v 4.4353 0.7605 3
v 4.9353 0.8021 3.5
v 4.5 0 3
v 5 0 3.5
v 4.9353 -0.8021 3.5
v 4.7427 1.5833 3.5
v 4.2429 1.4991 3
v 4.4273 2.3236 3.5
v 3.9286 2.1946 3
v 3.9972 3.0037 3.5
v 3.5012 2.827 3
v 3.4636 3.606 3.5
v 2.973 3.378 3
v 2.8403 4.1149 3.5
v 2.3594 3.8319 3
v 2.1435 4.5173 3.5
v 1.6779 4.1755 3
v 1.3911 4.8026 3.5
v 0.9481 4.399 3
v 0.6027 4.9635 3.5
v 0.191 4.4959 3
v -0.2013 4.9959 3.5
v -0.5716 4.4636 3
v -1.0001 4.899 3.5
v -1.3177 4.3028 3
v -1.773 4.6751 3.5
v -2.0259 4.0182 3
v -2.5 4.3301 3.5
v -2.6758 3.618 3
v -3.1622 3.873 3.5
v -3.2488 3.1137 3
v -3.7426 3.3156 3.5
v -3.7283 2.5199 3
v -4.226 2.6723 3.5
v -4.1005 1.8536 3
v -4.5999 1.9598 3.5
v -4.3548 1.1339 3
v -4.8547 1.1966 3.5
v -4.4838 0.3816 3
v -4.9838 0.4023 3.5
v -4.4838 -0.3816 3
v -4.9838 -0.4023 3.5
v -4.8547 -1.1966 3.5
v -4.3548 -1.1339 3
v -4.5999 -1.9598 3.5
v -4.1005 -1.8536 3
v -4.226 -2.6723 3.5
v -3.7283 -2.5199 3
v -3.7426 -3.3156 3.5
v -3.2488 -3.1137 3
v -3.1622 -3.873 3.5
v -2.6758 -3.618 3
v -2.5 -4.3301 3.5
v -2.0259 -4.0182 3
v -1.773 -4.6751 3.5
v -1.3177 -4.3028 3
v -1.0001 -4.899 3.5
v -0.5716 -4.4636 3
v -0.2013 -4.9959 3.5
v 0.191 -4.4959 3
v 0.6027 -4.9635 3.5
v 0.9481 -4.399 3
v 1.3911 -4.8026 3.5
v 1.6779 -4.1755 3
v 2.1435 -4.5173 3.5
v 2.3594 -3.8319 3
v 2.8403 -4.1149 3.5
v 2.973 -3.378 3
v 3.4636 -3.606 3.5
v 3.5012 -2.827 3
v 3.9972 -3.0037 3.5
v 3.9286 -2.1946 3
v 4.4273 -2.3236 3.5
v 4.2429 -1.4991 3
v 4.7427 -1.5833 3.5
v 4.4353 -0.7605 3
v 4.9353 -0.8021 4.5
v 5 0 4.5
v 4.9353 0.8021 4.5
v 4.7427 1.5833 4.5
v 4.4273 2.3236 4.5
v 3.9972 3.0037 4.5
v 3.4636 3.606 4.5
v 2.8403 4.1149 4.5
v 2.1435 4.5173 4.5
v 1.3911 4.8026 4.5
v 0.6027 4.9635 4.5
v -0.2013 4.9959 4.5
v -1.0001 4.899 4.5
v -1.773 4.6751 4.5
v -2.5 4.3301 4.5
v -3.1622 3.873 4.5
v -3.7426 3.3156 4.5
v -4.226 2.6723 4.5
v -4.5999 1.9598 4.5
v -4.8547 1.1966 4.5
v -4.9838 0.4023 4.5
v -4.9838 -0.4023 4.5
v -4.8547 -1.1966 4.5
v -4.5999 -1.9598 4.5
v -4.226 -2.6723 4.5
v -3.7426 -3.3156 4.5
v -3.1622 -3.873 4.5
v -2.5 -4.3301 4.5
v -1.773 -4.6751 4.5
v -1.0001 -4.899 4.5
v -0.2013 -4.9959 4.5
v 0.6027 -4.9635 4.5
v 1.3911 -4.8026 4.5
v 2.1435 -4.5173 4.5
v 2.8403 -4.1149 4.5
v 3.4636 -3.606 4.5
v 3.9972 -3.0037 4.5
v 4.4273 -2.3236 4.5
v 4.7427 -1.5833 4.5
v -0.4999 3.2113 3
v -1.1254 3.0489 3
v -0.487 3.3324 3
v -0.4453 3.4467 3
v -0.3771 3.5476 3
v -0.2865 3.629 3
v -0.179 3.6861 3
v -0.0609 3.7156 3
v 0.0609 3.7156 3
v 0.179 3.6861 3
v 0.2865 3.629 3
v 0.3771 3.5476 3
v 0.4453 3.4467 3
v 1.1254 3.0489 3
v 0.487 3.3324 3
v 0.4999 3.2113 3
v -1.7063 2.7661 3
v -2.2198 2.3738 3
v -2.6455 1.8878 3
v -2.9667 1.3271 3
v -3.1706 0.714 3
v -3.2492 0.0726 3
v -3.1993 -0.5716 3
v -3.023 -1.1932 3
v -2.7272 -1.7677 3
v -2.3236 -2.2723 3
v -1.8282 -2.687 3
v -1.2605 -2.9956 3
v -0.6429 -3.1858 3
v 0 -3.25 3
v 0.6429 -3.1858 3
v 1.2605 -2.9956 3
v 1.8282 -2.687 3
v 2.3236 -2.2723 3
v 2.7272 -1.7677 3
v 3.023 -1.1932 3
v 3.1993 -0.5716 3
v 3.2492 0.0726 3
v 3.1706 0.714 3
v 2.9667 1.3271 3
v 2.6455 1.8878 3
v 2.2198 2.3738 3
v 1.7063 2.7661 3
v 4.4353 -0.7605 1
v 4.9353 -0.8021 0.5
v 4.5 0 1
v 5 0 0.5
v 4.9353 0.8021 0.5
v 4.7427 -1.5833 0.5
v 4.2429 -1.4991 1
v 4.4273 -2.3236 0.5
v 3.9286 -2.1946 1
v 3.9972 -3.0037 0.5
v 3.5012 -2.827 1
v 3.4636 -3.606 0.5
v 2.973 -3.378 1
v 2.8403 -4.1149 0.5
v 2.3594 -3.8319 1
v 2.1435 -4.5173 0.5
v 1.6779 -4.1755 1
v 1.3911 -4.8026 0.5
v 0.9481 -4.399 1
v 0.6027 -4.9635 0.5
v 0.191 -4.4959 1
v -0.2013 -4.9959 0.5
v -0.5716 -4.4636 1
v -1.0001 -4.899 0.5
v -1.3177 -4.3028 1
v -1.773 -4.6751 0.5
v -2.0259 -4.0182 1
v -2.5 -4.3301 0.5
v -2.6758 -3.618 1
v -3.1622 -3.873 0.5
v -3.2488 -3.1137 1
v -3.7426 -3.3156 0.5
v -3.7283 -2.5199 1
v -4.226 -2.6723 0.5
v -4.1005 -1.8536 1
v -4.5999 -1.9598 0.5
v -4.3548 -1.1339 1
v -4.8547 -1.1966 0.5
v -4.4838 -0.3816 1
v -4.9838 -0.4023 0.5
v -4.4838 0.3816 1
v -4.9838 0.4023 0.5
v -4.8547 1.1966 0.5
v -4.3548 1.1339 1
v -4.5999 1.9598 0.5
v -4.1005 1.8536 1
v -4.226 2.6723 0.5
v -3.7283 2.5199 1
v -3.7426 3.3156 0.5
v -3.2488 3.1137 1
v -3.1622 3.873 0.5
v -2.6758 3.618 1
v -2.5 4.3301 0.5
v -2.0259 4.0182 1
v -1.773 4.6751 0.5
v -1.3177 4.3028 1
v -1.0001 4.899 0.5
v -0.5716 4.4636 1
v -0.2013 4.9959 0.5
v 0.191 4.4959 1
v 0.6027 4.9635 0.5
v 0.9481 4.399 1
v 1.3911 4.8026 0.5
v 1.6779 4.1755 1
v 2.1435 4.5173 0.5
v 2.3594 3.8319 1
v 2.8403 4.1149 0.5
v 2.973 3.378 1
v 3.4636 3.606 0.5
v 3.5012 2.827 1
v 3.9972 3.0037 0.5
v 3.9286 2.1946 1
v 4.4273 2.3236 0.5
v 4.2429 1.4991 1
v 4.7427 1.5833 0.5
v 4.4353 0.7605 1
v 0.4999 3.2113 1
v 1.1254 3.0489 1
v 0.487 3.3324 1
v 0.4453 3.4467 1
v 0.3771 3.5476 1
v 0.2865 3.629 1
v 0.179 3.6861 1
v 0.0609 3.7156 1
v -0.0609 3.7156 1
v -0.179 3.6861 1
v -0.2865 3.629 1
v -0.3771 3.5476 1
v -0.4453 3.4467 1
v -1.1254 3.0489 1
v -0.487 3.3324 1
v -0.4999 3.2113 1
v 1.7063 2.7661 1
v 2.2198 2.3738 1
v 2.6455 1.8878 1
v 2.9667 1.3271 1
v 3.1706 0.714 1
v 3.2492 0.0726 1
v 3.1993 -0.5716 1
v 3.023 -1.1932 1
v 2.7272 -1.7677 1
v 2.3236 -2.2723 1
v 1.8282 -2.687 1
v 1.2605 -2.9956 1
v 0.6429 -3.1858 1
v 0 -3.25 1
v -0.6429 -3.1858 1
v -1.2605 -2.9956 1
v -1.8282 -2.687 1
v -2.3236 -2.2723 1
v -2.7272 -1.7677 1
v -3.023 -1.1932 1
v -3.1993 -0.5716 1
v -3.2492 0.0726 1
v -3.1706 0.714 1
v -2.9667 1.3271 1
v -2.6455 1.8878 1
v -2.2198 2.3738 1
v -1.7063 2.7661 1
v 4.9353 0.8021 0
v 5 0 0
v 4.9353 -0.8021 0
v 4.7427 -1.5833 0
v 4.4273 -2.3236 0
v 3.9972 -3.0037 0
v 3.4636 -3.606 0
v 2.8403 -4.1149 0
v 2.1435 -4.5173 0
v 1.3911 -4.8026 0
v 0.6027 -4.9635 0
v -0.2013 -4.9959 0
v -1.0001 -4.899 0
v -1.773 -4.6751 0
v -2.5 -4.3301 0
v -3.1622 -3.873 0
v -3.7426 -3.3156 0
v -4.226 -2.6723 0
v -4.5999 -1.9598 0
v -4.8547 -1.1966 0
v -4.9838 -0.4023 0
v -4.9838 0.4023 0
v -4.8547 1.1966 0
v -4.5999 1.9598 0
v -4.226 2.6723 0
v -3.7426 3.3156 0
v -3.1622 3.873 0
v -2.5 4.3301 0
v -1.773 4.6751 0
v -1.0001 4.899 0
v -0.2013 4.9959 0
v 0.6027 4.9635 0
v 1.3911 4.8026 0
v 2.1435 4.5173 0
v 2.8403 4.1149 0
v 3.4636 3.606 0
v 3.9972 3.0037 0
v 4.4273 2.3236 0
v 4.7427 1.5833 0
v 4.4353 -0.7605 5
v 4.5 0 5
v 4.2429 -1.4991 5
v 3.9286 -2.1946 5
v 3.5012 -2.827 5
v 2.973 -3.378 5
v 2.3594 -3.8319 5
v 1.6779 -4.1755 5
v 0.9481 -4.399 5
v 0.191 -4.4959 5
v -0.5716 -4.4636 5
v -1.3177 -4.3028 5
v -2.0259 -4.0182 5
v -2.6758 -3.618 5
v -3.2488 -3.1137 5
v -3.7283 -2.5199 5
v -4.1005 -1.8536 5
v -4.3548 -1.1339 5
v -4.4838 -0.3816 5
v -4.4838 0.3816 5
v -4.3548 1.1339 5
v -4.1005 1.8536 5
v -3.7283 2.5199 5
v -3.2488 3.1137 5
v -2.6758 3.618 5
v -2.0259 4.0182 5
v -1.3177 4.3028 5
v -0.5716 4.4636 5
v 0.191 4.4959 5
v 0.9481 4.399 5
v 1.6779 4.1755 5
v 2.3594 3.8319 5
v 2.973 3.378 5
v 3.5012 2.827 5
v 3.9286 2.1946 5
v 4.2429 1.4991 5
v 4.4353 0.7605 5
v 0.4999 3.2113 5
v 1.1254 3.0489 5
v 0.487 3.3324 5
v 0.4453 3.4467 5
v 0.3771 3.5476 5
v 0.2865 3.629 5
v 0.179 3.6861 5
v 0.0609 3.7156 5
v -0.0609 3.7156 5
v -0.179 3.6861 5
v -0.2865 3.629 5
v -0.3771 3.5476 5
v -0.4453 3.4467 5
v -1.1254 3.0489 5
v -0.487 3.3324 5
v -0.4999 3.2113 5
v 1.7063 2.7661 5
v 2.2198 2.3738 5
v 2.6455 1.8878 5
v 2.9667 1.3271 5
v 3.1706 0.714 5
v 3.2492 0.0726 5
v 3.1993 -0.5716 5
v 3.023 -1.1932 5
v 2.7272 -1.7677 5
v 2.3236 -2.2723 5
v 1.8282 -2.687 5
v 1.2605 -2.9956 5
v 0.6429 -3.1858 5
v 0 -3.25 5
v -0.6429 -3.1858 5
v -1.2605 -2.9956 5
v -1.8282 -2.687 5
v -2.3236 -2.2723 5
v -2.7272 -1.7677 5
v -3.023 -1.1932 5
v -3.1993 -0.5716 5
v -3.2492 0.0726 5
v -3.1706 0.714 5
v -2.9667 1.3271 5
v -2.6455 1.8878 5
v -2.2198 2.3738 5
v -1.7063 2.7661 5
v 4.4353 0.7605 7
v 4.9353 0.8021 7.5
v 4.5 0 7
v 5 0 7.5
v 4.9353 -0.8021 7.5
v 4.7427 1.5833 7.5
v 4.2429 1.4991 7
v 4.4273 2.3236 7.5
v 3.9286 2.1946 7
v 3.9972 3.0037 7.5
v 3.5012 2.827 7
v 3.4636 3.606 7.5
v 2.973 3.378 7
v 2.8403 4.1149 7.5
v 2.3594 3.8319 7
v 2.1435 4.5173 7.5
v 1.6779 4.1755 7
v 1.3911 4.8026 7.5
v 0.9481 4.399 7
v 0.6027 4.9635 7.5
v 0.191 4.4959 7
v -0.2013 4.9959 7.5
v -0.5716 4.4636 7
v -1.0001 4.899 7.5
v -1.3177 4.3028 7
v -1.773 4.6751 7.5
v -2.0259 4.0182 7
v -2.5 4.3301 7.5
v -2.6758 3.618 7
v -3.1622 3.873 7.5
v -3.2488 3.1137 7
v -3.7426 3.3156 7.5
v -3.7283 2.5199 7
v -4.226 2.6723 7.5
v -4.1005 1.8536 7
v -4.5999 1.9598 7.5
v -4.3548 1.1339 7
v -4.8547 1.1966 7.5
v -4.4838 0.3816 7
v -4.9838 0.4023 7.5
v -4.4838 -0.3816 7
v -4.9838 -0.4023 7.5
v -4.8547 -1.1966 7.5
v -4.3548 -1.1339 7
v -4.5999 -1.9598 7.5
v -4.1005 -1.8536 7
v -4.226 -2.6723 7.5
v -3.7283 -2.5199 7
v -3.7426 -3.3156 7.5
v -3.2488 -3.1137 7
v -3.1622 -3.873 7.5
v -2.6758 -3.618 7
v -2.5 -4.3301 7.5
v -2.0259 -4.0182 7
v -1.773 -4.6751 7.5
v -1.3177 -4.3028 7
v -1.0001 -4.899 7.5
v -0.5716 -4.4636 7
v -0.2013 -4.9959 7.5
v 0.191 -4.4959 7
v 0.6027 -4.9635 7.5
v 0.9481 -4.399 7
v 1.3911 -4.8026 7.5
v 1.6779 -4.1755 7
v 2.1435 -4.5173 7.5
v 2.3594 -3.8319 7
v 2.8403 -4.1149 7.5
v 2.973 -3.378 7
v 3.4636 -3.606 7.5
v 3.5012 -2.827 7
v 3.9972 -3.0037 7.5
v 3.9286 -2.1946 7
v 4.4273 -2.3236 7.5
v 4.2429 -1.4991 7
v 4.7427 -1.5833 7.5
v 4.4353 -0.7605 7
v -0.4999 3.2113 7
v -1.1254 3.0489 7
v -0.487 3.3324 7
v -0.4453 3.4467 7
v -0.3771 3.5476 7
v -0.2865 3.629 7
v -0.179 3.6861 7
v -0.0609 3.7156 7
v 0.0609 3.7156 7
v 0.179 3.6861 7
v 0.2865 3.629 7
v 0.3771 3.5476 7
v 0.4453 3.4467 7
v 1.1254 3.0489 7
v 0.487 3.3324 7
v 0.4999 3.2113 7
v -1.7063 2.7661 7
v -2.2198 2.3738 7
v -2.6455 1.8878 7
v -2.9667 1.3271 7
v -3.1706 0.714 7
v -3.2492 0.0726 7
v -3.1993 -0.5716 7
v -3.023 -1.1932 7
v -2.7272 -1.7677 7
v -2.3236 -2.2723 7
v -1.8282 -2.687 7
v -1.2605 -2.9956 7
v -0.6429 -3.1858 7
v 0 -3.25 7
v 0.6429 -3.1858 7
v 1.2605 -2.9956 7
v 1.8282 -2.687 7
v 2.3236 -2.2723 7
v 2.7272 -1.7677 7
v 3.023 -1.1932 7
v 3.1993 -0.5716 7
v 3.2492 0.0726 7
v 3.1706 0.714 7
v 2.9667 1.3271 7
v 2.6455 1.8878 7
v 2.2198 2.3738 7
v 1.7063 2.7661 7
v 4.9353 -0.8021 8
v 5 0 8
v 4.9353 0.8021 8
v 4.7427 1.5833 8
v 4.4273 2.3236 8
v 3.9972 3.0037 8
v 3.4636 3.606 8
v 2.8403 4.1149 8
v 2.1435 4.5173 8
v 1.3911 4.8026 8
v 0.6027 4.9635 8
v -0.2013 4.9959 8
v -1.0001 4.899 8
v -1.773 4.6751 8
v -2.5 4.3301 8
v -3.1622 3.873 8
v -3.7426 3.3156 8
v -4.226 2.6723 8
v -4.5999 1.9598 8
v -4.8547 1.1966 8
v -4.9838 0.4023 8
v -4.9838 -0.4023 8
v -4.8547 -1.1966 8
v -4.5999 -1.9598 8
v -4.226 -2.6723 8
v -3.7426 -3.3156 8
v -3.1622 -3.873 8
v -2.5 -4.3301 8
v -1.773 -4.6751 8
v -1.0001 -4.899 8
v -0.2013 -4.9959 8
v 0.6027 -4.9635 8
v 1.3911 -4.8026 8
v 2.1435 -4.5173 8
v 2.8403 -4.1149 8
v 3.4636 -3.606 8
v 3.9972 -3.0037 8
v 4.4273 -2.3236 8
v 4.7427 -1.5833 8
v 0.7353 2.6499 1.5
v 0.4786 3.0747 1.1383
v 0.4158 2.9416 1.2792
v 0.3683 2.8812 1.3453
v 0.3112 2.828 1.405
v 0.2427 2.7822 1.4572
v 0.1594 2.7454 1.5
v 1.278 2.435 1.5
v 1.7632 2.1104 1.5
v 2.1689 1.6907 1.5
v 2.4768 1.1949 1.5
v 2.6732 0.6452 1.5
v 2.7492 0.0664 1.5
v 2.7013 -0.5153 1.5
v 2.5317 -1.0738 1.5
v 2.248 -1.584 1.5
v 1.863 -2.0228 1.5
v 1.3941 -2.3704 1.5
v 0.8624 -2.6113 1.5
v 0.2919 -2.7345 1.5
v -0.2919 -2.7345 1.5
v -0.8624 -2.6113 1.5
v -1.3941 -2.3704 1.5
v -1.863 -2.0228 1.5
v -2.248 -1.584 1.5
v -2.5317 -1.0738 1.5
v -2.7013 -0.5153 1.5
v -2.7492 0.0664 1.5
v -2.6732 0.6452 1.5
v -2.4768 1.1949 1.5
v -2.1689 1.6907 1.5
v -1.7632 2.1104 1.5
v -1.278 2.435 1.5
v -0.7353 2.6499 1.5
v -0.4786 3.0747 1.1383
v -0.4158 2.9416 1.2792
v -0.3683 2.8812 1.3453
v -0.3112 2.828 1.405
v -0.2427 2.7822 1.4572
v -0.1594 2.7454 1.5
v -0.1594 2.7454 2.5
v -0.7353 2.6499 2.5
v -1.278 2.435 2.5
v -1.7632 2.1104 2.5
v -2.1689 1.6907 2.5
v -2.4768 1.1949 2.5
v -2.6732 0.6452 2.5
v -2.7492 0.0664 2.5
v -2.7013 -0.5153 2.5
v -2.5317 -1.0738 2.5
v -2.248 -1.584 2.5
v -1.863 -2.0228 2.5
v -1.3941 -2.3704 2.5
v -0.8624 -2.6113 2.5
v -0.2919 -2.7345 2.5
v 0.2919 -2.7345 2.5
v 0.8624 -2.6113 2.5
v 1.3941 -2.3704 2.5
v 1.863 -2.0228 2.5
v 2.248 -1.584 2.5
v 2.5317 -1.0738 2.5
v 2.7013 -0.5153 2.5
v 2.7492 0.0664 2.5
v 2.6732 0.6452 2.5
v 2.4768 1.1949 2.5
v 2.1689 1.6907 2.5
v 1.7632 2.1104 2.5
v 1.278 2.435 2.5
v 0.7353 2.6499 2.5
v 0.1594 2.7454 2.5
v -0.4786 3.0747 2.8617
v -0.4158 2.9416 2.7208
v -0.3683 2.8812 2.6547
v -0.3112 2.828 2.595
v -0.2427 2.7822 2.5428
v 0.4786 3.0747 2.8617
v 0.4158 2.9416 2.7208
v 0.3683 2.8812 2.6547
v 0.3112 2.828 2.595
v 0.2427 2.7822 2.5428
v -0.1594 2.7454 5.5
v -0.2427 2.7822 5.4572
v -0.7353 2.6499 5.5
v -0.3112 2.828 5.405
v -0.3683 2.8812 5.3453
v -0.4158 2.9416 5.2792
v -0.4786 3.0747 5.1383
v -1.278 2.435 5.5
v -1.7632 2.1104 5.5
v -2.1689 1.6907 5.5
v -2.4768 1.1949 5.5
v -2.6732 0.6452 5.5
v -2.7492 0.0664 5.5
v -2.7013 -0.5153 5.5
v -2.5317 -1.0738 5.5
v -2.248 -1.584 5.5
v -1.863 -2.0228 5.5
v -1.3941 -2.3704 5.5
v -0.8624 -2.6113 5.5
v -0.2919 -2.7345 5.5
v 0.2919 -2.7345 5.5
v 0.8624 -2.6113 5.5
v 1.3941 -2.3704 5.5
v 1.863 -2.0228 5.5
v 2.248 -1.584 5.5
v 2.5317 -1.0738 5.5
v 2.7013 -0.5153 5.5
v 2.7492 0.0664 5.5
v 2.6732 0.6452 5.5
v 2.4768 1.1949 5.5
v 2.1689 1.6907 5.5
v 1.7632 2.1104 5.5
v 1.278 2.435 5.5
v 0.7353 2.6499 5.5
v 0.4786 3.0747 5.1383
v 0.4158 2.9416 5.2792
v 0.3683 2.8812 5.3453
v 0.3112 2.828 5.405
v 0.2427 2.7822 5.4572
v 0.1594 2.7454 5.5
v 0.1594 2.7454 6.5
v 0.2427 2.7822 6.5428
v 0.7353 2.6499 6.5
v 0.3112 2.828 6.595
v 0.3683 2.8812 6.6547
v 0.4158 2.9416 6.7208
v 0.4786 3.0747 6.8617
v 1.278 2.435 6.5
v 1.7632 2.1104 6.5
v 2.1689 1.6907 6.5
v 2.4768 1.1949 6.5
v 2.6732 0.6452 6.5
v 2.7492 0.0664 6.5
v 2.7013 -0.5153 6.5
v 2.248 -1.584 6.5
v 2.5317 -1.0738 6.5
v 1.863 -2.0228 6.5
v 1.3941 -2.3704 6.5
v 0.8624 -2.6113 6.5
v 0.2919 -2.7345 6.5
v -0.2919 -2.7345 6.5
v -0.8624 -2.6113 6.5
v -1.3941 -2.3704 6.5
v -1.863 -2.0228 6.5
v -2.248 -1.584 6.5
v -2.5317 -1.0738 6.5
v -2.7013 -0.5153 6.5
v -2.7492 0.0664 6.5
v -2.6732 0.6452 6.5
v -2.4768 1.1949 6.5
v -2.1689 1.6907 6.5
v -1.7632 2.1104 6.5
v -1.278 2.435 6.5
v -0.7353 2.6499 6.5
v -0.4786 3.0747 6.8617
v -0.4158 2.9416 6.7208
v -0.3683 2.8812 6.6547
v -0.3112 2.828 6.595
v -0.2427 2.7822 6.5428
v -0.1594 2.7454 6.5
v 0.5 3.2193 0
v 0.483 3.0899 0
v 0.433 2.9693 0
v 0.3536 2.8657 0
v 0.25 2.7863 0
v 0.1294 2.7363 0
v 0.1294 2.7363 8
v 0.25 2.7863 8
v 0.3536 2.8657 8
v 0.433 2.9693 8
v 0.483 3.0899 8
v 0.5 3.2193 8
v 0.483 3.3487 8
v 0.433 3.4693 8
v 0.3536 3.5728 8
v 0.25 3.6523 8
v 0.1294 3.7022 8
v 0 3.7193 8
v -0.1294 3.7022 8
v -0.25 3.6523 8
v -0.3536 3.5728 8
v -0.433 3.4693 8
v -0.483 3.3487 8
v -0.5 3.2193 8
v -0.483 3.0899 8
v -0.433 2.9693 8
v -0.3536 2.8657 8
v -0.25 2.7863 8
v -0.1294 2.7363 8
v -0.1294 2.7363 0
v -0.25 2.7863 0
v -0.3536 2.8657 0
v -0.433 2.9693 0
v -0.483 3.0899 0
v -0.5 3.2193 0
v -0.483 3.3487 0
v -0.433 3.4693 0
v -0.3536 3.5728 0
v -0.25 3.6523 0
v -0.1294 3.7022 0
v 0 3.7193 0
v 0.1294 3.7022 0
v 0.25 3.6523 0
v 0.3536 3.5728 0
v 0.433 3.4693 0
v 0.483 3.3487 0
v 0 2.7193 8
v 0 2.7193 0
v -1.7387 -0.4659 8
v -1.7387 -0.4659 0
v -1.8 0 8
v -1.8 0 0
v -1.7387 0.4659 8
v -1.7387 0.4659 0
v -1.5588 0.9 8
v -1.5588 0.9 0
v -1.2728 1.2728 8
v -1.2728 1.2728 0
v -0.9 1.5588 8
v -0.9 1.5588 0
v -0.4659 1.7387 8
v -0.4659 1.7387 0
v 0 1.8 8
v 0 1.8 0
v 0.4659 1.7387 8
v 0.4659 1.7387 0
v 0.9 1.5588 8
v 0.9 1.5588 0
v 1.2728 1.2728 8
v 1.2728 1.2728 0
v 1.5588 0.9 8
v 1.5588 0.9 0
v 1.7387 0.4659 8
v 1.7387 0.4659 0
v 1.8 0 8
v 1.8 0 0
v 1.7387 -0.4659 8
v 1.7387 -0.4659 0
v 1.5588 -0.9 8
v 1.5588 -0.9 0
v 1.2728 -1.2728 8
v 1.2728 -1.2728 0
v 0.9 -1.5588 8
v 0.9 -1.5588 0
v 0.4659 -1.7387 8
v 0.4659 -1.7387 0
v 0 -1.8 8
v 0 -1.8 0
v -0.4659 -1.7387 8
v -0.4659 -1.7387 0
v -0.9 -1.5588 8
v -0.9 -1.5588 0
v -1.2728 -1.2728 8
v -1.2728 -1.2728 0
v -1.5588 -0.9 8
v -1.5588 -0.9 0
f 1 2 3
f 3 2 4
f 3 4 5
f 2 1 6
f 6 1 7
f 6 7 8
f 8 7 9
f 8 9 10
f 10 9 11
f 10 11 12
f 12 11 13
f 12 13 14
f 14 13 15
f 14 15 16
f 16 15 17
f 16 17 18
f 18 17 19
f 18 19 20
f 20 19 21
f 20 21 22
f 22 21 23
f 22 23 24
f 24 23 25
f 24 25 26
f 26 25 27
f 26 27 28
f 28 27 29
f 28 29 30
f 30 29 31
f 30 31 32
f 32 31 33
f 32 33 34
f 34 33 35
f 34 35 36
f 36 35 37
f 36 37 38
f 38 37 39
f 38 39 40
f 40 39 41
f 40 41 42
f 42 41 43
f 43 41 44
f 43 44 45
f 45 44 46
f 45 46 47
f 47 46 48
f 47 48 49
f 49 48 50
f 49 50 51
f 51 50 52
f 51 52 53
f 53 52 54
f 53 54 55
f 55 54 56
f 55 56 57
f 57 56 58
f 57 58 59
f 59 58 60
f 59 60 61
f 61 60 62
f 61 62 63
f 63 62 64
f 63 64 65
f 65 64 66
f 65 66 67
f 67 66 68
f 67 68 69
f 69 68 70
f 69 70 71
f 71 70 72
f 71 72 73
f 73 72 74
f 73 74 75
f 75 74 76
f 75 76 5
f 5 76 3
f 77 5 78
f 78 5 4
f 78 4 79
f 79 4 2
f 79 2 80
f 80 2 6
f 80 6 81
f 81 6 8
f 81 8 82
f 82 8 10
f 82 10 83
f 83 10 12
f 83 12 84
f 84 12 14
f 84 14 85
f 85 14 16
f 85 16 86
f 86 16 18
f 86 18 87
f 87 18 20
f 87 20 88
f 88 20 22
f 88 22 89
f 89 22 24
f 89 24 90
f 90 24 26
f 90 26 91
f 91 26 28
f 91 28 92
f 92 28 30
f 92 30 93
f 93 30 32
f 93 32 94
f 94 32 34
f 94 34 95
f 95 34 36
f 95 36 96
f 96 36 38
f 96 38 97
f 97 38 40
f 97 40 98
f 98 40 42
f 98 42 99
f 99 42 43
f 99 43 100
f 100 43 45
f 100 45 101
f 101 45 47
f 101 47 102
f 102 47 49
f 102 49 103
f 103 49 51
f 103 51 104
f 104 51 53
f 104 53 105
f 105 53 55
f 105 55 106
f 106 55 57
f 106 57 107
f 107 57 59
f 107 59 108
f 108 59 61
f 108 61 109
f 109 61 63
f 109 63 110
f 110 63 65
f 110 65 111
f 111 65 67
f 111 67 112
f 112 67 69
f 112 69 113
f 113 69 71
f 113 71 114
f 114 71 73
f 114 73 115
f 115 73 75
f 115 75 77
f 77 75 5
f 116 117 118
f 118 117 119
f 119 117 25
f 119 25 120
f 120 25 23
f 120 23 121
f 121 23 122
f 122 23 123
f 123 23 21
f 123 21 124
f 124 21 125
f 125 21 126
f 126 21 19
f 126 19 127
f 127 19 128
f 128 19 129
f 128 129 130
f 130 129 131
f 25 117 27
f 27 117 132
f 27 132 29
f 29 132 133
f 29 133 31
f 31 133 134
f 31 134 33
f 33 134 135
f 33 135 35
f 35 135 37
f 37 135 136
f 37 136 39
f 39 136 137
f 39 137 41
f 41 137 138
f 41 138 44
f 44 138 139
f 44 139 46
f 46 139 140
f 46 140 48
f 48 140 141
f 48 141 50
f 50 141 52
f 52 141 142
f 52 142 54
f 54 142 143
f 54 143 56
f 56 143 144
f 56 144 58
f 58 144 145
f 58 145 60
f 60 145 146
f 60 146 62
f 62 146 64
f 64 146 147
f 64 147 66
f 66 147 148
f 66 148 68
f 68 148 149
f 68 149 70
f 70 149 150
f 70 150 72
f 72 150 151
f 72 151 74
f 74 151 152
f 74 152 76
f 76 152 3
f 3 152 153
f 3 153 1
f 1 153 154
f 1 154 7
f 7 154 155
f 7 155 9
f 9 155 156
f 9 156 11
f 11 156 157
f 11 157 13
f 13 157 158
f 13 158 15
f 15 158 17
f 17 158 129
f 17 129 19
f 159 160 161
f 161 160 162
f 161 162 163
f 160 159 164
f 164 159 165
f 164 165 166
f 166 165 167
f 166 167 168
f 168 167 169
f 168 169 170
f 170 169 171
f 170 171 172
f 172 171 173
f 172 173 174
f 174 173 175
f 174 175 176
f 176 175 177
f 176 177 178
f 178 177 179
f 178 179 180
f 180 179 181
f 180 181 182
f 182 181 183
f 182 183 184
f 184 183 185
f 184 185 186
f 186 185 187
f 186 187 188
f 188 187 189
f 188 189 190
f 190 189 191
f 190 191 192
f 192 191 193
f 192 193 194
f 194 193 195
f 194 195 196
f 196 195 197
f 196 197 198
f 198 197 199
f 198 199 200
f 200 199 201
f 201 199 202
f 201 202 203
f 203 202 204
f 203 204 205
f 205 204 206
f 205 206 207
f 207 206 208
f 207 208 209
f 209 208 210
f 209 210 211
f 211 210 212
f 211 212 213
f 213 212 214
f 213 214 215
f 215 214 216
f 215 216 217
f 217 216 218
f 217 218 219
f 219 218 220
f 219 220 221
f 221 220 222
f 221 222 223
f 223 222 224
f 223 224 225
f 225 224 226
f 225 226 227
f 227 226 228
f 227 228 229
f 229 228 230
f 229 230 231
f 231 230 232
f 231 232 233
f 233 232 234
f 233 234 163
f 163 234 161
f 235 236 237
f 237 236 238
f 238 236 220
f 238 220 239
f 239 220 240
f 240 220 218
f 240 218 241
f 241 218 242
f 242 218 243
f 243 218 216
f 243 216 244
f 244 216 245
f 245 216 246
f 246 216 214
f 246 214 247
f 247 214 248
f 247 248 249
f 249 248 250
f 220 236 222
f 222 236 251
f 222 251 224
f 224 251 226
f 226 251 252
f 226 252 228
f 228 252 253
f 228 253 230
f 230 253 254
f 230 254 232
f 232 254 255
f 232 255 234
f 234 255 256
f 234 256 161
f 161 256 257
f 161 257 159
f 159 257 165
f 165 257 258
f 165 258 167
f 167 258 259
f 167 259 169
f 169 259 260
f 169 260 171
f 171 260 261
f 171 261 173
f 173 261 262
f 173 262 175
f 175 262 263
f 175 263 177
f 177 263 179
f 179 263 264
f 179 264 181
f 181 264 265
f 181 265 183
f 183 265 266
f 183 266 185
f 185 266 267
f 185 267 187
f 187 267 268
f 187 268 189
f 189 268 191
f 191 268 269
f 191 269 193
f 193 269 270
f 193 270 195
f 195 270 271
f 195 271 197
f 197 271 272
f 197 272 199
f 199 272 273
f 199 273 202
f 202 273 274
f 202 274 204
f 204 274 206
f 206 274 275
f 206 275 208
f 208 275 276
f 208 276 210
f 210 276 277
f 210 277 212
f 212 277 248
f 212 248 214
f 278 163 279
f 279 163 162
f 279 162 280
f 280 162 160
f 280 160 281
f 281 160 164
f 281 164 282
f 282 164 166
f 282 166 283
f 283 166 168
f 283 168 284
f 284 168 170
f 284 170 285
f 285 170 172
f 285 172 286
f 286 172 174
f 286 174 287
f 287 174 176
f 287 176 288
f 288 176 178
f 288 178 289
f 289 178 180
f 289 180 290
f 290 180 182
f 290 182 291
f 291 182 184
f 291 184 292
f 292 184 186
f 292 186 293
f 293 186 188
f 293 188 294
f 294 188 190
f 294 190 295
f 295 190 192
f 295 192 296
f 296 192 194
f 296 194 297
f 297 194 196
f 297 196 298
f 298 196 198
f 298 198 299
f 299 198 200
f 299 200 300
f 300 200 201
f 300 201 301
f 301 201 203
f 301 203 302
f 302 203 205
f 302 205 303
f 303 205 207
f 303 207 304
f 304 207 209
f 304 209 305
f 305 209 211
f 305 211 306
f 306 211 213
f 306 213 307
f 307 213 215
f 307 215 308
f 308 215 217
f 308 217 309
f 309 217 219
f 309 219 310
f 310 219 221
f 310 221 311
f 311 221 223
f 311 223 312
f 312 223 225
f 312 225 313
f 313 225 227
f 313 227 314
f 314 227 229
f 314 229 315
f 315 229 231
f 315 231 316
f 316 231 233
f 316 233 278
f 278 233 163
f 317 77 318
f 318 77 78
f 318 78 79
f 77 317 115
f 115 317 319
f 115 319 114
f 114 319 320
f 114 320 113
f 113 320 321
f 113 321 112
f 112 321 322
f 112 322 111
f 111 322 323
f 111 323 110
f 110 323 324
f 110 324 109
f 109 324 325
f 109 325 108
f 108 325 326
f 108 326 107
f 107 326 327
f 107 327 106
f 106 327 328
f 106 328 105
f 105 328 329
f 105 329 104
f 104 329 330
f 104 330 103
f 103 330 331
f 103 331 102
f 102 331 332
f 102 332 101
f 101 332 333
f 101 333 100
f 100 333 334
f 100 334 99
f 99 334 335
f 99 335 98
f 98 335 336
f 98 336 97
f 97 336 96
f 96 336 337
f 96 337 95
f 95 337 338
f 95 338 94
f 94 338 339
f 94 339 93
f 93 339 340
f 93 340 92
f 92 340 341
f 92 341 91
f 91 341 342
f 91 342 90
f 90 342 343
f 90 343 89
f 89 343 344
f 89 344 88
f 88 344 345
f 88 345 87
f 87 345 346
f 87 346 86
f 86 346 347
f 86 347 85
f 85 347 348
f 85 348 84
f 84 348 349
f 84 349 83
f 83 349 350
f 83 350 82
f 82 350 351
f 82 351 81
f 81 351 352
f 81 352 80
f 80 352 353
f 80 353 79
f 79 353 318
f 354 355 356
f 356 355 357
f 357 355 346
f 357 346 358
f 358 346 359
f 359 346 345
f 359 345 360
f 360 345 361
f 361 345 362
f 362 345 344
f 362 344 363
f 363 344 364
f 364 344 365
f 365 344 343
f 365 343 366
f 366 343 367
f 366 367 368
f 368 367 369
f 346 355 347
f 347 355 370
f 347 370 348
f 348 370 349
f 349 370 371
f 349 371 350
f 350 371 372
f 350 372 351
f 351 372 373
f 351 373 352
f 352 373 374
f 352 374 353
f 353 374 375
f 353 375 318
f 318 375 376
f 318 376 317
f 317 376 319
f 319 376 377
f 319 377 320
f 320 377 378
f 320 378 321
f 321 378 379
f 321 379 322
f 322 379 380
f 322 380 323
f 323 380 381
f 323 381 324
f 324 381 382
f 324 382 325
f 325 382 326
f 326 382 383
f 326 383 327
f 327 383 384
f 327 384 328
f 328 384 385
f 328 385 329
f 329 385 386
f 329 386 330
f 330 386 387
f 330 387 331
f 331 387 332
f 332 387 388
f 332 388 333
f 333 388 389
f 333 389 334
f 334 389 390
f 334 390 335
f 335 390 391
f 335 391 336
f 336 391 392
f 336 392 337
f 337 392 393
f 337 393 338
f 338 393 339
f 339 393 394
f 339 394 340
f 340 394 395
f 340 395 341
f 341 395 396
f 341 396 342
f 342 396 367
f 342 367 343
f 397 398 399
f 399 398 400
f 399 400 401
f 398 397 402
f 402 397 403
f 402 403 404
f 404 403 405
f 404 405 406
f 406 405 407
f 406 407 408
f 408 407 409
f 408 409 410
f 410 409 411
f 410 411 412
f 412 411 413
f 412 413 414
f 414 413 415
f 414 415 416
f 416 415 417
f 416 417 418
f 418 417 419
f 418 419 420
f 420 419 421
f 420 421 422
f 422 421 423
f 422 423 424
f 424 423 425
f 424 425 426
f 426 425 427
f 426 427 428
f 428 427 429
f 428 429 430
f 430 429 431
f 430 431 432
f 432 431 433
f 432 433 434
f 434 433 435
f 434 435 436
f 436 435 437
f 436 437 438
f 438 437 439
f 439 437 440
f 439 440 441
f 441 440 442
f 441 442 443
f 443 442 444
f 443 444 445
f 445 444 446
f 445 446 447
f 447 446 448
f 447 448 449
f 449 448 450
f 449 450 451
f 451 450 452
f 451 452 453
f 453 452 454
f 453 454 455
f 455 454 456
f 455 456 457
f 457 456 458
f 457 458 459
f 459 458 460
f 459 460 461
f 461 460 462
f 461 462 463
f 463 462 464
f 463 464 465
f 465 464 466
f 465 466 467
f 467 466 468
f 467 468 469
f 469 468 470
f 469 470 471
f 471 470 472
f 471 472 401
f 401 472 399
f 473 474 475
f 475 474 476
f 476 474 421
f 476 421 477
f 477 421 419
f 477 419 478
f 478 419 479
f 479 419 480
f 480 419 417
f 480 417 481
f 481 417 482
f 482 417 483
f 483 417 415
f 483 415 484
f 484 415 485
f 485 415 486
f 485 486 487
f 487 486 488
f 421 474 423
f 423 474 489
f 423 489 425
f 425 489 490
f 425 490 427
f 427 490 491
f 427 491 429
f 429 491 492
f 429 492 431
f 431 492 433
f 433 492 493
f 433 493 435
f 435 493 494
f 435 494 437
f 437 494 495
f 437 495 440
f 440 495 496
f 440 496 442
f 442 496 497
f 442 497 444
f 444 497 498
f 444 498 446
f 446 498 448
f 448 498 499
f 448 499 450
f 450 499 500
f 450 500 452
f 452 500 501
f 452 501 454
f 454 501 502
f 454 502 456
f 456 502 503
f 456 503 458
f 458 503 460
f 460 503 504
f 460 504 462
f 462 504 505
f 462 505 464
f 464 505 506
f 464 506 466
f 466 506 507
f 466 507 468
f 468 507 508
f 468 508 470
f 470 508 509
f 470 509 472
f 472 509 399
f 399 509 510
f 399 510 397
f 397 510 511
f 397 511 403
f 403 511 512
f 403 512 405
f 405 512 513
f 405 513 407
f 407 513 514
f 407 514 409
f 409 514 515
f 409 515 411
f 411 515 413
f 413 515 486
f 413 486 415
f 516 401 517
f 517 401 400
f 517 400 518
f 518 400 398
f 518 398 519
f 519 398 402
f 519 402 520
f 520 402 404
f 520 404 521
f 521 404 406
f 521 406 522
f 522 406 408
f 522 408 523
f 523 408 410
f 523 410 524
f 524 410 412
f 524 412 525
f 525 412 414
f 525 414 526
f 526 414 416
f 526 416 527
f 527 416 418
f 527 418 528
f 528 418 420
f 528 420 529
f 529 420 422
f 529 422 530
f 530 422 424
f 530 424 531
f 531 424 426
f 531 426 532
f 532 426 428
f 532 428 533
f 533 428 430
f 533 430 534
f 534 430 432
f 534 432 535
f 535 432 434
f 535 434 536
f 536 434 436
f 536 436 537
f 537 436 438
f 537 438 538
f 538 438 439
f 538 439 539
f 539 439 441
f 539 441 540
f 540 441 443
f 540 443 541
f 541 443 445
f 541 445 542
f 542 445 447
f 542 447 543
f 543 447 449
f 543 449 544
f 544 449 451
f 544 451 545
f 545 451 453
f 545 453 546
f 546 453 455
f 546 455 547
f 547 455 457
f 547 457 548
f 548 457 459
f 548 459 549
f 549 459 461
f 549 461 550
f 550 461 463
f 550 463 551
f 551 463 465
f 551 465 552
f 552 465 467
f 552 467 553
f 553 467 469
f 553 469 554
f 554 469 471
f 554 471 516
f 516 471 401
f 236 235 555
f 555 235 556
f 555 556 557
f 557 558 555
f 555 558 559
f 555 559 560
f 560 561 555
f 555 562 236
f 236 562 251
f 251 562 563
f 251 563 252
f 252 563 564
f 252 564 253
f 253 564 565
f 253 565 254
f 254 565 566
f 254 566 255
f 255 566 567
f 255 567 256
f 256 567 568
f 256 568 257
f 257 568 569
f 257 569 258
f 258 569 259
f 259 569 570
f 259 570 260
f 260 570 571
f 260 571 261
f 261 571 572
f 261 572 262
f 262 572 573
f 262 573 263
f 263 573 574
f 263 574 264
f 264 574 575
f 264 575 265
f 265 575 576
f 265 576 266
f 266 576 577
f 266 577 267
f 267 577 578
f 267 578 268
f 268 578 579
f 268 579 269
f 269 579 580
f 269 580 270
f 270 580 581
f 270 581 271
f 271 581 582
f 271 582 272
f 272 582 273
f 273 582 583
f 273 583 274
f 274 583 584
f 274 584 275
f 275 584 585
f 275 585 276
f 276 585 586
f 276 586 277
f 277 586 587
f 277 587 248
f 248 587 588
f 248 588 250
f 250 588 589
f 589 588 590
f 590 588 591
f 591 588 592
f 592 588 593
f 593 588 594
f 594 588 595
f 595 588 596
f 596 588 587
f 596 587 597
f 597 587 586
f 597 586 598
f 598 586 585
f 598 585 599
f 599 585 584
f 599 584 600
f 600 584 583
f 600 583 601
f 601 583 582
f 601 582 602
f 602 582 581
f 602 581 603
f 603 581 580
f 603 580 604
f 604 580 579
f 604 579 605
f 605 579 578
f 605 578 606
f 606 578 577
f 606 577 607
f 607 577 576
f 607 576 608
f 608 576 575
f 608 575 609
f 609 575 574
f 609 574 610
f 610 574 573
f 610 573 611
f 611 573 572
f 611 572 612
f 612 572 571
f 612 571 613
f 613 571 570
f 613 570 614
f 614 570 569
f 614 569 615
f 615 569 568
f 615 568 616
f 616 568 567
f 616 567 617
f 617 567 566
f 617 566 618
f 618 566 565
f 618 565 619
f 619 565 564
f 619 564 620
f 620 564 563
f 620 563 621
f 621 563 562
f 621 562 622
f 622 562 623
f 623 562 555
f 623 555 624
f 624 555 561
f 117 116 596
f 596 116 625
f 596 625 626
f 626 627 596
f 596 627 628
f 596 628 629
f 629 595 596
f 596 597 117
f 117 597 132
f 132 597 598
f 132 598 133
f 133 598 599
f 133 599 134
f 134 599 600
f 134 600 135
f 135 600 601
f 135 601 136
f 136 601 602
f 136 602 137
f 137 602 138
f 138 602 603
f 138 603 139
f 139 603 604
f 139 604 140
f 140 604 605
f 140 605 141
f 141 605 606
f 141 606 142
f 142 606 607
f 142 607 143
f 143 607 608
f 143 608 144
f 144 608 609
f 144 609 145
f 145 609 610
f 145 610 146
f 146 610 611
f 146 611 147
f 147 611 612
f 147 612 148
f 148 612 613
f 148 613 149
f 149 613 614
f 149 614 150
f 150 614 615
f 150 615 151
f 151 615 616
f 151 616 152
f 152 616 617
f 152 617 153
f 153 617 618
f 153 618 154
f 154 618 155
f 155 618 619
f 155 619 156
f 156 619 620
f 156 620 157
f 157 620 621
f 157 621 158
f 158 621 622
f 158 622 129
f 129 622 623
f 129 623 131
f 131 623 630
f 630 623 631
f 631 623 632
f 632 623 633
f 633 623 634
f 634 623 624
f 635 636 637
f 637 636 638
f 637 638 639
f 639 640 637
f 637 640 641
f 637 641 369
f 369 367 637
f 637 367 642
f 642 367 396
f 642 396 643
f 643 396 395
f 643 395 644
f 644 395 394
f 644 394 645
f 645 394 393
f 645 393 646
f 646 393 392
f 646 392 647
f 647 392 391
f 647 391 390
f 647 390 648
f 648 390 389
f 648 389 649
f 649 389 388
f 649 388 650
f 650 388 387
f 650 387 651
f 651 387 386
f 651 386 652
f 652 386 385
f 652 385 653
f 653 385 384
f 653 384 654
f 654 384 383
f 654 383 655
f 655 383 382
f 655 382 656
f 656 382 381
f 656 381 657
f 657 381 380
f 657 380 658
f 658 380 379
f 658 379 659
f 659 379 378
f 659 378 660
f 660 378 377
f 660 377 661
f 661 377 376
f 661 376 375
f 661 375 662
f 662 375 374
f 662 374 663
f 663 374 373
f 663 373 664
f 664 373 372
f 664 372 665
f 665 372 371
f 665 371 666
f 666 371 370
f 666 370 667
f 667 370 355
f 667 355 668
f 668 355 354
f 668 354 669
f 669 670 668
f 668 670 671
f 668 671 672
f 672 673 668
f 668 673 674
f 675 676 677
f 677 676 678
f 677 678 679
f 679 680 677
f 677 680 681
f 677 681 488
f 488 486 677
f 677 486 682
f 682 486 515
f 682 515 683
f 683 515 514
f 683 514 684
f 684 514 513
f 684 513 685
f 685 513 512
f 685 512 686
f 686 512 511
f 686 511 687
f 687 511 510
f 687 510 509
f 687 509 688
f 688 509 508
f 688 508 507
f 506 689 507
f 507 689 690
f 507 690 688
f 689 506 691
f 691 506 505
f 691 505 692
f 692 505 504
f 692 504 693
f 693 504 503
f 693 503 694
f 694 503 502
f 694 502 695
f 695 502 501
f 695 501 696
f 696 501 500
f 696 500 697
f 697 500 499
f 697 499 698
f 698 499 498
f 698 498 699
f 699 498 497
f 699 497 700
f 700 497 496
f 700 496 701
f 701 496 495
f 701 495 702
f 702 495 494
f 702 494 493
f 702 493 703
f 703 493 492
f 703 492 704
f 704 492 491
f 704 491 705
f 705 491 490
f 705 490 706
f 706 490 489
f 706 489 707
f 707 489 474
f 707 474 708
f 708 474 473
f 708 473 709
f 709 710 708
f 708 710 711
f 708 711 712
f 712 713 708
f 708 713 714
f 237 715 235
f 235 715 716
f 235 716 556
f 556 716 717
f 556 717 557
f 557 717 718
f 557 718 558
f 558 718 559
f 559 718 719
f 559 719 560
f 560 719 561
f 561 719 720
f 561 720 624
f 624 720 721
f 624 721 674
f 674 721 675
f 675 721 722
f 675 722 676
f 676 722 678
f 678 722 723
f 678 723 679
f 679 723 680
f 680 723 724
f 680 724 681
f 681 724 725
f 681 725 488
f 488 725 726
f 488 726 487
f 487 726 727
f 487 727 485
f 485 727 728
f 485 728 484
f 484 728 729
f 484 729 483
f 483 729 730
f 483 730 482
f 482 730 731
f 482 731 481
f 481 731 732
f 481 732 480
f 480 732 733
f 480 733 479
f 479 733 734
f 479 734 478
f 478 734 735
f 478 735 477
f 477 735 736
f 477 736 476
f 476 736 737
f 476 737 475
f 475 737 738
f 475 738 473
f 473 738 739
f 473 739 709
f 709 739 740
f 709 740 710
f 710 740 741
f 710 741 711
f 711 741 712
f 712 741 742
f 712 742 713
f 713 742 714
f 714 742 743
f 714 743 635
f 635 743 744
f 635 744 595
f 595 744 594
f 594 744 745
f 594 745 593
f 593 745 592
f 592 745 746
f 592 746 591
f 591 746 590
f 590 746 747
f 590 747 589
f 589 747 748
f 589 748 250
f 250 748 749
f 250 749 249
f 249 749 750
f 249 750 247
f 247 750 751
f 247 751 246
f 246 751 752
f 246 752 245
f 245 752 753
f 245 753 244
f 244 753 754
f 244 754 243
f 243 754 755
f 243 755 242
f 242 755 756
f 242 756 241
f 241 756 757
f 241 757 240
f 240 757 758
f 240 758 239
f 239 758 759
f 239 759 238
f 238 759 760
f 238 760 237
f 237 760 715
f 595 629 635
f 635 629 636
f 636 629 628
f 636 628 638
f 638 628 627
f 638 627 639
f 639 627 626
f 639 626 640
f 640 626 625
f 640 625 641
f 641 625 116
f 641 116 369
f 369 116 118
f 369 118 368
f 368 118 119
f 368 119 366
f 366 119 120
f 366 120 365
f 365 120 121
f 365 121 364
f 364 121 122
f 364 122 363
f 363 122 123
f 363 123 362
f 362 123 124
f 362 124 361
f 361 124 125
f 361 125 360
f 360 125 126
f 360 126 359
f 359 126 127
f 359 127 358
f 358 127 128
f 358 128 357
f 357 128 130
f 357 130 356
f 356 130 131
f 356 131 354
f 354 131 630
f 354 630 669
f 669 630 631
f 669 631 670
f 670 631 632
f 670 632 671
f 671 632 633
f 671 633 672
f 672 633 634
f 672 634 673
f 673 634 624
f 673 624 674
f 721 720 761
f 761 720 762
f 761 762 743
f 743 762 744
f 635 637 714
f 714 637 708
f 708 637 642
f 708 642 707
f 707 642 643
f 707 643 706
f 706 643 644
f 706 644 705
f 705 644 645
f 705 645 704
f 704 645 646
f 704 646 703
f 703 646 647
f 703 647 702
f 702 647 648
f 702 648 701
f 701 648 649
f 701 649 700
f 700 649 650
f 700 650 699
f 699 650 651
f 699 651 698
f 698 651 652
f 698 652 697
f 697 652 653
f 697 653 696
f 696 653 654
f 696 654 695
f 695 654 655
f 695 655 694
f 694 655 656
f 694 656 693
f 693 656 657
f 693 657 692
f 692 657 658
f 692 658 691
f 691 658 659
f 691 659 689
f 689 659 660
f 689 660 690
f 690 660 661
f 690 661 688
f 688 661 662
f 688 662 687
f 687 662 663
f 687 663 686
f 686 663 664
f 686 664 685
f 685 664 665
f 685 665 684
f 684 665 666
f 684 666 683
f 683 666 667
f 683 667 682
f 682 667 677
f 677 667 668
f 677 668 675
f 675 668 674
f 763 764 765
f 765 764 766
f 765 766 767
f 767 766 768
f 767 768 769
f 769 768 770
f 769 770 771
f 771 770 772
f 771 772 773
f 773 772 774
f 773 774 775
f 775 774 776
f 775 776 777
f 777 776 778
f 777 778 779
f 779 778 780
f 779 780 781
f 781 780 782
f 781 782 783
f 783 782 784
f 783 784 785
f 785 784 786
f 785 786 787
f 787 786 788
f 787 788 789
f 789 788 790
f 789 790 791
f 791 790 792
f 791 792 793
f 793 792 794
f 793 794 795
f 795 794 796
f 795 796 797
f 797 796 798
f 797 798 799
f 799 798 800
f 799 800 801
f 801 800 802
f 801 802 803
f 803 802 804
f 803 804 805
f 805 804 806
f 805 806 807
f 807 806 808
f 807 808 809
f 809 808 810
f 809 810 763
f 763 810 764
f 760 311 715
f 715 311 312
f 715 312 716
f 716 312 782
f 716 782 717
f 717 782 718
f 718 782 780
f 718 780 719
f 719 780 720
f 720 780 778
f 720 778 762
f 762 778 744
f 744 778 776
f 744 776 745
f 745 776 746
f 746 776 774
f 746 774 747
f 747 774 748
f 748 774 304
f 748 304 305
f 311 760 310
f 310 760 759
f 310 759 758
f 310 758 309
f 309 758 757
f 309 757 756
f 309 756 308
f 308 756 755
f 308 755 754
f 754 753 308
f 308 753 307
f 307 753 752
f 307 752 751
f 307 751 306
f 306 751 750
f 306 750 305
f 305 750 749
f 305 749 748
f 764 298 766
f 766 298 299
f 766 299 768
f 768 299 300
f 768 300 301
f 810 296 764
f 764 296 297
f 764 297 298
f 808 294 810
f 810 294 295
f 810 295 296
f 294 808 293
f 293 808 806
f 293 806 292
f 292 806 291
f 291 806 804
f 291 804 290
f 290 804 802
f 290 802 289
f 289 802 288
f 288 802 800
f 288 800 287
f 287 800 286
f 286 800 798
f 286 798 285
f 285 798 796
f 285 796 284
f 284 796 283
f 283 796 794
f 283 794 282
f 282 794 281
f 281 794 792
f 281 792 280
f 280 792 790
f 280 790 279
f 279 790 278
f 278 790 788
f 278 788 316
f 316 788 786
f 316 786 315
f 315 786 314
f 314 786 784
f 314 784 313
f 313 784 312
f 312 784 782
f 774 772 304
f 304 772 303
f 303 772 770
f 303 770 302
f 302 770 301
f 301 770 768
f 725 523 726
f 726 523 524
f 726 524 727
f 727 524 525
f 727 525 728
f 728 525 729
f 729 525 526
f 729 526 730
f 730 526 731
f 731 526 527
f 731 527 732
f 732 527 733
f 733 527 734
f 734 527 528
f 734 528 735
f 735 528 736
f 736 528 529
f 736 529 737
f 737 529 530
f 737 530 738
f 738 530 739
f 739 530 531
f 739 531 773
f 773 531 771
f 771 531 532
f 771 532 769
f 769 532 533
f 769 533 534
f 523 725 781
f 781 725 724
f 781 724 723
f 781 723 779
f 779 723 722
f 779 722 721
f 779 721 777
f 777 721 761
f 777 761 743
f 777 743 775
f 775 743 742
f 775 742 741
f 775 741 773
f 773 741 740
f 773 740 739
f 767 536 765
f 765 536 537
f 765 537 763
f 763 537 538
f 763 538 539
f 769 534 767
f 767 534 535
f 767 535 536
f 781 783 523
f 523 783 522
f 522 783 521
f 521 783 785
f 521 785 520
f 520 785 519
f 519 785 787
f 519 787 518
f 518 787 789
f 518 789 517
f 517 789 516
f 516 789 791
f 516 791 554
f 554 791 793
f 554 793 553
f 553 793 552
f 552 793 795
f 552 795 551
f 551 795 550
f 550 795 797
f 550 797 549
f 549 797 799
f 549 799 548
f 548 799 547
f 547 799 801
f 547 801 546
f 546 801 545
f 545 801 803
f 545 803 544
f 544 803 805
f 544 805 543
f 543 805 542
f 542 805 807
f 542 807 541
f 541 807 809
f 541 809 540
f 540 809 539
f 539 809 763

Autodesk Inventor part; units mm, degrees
ref_plane "YZ Plane" through (0, 0, 0) normal (1, 0, 0) x (0, 1, 0)
ref_plane "XZ Plane" through (0, 0, 0) normal (0, 1, 0) x (-1, 0, 0)
ref_plane "XY Plane" through (0, 0, 0) normal (0, 0, 1) x (1, 0, 0)
sketch "Sketch1" plane through (0, 0, 0) normal (0, 0, 1) x (1, 0, 0)
  circle A0 centre (0, 0) radius 5
  dimension "d0" = 10
extrude "Extrusion1" add sketch "Sketch1" along normal blind 8
ref_plane "Work Plane2" through (0, 0, 6) normal (0, 0, 1) x (1, 0, 0)
ref_plane "Work Plane1" through (0, 0, 4) normal (0, 0, 1) x (1, 0, 0)
sketch "Sketch2" plane through (0, 0, 6) normal (0, 0, 1) x (1, 0, 0)
  circle A0 centre (0, 0) radius 5
  circle A1 centre (0, 0) radius 2.75
  dimension "d3" = 5.5
  dimension "d4" = 10
extrude "Extrusion2" cut sketch "Sketch2" along normal mid plane 2
mirror "Mirror1" about plane through (0, 0, 4) normal (0, 0, 1) of "Extrusion2"
sketch "Sketch3" plane through (0, 0, 0) normal (0, 0, -1) x (-1, 0, 0)
  point P0 (0, 0)
sketch "Sketch4" plane through (0, 0, 0) normal (0, 0, -1) x (-1, 0, 0)
  circle A0 centre (0, 0) radius 1.8
  dimension "d11" = 3.6
extrude "Extrusion3" cut sketch "Sketch4" against normal blind 10
sketch "Sketch5" plane through (0, 0, 8) normal (0, 0, 1) x (1, 0, 0)
  circle A0 centre (0, 3.2193) radius 0.5
  point P0 (0, 0)
  dimension "d14" = 1
extrude "Extrusion4" cut sketch "Sketch5" against normal blind 10
chamfer "Chamfer1" distance 0.5 angle 45 12 edges at (2.0001, 1.8873, 7) (-1.8873, -2.0001, 7) (2.0001, 1.8873, 5) (-1.8873, -2.0001, 5) (2.0001, 1.8873, 3) (-1.8873, -2.0001, 3) (2.0001, 1.8873, 1) (-1.8873, -2.0001, 1) (-5, 0, 7) (-5, 0, 5) (-5, 0, 1) (-5, 0, 3)
properties part number "MotorPullyRounded"
